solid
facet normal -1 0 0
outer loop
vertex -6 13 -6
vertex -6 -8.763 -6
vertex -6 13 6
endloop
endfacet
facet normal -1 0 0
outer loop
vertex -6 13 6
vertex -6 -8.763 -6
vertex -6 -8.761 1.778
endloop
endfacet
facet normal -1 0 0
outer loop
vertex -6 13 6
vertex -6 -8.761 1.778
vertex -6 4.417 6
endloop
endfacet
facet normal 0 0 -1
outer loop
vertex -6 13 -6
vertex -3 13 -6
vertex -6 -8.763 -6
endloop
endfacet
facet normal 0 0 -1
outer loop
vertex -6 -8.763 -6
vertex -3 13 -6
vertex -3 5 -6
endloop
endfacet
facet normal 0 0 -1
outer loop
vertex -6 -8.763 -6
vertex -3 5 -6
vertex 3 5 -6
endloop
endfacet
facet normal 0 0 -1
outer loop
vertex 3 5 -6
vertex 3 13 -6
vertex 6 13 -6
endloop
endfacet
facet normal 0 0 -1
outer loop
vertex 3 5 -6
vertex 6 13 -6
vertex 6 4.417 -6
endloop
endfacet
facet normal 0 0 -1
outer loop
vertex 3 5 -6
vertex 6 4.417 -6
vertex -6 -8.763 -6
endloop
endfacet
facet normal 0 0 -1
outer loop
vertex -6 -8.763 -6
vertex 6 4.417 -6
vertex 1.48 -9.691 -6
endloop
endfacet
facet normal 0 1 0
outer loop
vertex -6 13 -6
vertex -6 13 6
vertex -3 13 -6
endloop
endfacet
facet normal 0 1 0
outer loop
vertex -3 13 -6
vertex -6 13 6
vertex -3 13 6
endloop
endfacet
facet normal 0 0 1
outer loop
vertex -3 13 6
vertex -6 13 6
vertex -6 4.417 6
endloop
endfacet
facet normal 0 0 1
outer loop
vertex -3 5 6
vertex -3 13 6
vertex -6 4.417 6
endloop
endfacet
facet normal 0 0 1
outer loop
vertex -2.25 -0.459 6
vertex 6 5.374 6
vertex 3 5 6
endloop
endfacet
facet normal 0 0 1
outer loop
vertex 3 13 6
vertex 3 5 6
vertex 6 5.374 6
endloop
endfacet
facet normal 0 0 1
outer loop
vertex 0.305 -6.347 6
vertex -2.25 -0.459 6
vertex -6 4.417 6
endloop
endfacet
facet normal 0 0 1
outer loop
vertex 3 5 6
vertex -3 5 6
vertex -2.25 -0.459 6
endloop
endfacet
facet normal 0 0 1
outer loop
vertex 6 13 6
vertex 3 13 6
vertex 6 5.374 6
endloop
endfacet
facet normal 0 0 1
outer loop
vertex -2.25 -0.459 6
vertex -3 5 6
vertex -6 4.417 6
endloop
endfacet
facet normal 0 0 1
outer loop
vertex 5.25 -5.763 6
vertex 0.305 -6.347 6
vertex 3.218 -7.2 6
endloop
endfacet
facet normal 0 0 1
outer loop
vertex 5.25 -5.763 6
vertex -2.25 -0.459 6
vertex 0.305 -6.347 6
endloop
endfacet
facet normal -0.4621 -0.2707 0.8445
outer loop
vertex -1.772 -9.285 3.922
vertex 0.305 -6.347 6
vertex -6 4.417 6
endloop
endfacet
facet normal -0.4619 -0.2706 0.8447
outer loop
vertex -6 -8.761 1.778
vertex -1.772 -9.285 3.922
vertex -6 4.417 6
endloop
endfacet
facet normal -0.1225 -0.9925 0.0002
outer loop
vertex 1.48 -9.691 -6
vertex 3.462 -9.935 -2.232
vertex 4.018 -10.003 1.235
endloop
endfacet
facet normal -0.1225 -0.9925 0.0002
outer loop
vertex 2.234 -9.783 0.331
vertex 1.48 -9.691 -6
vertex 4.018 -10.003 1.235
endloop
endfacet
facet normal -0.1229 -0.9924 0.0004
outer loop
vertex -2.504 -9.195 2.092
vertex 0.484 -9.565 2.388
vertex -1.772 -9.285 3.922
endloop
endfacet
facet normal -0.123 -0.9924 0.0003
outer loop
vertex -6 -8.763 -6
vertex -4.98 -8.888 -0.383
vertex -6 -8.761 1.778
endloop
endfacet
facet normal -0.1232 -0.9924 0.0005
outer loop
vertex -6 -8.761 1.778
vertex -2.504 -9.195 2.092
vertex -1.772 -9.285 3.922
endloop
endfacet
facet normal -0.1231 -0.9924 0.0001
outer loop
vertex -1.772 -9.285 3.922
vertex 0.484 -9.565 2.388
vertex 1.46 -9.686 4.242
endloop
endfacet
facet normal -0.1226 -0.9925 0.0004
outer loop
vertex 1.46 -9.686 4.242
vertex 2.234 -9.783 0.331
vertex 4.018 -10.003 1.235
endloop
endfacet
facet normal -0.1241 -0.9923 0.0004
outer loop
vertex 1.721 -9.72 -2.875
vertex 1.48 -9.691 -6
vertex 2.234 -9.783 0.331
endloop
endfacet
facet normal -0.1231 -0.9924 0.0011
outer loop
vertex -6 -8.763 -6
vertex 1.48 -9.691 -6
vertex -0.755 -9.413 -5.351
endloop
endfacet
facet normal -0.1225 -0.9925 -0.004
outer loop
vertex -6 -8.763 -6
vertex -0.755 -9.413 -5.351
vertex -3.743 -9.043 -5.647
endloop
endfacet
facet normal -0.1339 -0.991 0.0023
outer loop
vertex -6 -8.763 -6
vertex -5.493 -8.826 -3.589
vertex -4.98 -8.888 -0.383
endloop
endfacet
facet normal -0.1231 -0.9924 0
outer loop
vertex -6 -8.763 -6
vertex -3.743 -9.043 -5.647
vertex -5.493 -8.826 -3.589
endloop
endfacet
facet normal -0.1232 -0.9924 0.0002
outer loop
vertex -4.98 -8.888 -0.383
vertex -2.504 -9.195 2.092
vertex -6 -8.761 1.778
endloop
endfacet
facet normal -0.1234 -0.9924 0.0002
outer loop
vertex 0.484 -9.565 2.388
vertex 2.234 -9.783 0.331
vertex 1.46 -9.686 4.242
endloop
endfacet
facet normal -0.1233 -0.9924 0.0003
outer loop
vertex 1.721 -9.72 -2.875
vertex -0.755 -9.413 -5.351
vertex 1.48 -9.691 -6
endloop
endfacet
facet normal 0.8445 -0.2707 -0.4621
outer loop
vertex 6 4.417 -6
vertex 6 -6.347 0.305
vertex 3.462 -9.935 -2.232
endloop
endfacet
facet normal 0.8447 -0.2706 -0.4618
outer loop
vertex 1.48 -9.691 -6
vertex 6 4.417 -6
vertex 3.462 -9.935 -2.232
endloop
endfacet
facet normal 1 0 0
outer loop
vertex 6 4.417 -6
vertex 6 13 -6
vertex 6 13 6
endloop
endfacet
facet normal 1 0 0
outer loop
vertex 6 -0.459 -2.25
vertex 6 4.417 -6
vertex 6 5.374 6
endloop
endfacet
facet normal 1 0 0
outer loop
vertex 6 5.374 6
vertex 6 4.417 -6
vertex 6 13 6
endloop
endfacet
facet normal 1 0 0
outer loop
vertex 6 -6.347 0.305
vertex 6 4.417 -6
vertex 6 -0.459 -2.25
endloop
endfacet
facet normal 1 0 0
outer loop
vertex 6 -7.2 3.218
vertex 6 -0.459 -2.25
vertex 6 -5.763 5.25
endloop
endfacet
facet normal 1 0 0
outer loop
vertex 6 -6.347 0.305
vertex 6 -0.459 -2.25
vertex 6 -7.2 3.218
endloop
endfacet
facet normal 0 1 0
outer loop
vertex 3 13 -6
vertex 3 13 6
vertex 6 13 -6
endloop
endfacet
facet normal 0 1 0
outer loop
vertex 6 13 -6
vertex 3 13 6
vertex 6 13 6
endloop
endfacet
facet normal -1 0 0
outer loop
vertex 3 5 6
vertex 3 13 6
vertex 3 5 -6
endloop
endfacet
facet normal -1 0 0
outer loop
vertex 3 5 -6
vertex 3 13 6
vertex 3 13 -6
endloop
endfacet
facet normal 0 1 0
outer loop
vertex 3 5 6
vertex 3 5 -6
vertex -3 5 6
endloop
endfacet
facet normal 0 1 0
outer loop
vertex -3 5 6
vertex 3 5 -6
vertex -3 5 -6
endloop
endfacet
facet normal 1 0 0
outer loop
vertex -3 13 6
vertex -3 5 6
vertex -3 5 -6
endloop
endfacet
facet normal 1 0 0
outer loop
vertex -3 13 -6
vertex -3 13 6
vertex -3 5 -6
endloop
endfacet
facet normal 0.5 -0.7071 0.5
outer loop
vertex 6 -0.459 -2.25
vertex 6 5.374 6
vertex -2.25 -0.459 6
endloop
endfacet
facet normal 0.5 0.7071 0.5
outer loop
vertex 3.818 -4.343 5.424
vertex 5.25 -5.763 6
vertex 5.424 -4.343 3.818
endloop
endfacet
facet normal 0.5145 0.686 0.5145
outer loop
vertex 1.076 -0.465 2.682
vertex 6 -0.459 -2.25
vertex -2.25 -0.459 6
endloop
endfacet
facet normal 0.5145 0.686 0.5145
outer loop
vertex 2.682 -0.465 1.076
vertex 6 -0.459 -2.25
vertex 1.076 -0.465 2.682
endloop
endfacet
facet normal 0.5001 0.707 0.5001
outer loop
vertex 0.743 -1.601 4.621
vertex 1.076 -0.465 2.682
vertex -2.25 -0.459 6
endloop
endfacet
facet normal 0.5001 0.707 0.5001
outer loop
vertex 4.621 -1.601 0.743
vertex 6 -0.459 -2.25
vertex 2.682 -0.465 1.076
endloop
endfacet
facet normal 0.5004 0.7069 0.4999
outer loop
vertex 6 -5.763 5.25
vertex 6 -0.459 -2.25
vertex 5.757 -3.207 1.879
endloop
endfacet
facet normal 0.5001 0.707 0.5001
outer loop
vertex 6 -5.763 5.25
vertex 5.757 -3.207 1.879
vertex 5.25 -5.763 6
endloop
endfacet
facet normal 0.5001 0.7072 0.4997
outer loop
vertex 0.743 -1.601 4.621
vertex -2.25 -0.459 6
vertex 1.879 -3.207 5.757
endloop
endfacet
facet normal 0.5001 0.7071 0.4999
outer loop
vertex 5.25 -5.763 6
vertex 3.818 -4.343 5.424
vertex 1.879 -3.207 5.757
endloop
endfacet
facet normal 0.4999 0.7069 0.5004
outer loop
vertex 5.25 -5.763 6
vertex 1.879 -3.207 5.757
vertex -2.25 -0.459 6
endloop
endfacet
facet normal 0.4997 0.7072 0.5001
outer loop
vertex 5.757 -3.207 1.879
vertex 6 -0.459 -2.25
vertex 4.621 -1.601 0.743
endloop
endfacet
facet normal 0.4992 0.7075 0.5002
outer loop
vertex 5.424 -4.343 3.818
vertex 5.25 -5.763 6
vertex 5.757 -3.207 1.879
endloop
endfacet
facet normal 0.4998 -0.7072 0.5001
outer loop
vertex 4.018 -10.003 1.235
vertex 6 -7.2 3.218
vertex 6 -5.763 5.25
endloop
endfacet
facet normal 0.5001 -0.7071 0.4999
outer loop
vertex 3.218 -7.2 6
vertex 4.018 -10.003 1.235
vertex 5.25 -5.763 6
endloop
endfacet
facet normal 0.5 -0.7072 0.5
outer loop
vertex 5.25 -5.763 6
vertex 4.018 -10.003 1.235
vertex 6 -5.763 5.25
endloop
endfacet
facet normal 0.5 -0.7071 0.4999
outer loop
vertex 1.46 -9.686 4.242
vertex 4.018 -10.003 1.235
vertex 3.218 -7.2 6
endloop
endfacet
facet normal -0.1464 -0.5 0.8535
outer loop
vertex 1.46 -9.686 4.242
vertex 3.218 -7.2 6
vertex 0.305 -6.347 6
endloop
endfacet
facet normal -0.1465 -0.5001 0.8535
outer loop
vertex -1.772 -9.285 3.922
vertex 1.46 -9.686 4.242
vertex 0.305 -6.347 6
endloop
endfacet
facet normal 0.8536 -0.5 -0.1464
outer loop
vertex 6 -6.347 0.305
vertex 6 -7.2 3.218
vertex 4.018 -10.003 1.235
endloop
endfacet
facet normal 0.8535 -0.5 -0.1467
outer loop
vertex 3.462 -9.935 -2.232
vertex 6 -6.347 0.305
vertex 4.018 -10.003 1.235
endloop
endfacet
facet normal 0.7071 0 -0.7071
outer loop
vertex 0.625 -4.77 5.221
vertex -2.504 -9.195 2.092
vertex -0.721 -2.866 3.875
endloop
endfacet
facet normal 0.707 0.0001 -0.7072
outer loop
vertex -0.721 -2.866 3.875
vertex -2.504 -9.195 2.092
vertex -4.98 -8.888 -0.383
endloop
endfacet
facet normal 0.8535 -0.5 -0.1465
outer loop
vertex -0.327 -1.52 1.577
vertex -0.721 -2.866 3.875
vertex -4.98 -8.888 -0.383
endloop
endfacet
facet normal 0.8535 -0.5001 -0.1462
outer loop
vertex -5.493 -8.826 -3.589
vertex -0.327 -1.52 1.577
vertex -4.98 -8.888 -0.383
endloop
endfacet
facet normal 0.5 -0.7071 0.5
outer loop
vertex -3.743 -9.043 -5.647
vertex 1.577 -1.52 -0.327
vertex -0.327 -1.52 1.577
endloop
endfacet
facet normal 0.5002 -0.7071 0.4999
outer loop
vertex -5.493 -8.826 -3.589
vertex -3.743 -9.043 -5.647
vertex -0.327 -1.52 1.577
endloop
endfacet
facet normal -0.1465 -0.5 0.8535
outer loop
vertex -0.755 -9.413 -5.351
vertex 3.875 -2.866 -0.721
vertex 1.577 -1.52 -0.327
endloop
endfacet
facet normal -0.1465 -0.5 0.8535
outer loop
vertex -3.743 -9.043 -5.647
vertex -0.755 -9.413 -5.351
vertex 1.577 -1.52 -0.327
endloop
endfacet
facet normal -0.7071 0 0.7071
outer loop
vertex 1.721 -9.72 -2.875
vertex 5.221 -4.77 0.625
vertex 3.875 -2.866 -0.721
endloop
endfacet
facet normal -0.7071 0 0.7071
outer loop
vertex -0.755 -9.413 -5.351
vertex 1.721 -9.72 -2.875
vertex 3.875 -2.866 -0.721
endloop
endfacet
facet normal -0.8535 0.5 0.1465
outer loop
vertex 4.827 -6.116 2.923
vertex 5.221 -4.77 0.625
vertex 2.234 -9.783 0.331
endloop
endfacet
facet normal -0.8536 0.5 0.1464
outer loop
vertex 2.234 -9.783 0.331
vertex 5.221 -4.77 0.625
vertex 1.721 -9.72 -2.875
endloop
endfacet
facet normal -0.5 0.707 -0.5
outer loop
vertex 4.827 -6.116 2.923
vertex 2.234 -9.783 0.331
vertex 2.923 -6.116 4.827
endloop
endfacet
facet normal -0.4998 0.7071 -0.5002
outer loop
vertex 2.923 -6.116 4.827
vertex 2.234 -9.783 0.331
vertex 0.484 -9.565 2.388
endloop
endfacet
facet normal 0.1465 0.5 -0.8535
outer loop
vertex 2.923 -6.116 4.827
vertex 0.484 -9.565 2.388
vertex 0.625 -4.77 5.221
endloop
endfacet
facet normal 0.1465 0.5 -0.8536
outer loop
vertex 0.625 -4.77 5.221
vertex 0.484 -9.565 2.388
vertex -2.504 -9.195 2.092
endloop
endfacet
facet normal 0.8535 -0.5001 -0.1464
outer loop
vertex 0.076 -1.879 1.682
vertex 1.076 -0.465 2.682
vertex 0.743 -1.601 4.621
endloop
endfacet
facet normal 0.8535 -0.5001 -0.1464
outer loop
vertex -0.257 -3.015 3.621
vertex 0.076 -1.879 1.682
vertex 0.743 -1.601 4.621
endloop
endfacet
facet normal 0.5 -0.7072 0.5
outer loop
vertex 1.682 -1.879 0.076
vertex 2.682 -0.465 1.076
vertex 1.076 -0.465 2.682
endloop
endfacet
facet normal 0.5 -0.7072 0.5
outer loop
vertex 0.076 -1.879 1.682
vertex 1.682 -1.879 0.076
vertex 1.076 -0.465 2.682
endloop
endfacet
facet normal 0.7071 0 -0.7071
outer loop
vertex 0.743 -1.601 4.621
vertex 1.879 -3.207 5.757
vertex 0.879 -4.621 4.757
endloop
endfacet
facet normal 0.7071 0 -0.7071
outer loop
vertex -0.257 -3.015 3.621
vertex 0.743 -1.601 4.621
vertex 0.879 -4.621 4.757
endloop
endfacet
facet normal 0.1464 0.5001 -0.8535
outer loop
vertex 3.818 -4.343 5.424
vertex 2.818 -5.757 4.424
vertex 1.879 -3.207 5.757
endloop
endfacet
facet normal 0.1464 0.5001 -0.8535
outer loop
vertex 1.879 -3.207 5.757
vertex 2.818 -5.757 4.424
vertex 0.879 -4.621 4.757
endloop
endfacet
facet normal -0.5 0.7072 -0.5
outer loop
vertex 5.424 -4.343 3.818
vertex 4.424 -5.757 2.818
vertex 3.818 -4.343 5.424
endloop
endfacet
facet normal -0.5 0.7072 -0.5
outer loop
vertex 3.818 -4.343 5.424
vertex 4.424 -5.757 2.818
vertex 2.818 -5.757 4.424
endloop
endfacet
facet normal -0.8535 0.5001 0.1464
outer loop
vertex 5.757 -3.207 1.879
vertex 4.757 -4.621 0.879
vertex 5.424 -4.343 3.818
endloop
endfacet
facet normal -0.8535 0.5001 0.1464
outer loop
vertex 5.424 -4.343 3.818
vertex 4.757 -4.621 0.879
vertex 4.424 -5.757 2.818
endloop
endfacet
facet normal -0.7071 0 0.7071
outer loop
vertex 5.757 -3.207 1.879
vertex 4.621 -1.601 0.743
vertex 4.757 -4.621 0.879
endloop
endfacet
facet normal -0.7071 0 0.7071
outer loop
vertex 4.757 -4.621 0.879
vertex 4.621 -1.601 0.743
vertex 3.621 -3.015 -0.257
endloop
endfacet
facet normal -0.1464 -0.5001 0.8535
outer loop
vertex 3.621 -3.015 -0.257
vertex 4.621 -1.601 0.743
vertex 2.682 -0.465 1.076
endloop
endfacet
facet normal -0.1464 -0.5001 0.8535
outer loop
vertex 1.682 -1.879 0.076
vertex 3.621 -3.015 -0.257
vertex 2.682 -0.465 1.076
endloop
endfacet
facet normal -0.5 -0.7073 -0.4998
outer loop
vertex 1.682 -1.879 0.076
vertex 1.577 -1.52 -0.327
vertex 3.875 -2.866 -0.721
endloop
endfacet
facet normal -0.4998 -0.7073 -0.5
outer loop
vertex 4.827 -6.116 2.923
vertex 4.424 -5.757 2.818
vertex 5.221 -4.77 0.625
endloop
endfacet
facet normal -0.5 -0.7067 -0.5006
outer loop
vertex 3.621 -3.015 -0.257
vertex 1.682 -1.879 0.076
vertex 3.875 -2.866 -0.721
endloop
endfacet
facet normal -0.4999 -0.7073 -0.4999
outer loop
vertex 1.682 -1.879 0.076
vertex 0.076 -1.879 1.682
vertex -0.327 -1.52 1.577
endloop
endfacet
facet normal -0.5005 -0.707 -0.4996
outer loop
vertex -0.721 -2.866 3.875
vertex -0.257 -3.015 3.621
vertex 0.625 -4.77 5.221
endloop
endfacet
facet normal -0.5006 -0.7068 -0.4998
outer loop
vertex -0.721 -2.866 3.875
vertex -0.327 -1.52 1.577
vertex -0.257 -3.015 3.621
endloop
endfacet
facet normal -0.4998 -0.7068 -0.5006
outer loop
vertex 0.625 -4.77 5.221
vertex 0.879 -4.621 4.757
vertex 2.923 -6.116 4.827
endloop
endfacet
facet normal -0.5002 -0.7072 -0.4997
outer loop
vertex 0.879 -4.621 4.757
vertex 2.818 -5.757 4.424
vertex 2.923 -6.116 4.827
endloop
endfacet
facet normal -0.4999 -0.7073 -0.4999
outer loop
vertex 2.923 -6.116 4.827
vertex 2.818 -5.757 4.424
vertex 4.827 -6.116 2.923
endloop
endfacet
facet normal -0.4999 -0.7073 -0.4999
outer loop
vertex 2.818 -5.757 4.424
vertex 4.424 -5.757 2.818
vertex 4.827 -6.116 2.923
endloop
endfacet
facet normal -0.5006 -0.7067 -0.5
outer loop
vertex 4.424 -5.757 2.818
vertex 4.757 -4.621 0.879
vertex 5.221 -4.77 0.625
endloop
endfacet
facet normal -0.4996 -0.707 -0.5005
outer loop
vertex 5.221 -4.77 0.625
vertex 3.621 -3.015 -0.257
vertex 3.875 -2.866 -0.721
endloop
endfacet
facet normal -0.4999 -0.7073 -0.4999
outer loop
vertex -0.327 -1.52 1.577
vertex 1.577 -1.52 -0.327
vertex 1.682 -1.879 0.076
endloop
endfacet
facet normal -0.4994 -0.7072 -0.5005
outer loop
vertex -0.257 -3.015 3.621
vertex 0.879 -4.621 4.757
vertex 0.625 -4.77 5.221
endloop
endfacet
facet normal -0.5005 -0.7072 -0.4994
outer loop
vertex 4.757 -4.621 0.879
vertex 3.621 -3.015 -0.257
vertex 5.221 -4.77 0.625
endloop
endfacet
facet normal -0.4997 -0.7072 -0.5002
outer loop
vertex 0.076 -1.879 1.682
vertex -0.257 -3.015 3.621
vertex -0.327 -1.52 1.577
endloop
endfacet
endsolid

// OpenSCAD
da6 = 1 / cos(180 / 6) / 2;
da8 = 1 / cos(180 / 8) / 2;

guide_diam = 6.5;
guide_length = 17;
holder_height = 26;
holder_clamp_depth = 8;

module spool_filament_holder(){
  difference() {
    translate([0,0,0]) cube([12,12,holder_height],center=true);

    translate([0,0,7]) {
      rotate([0,-45,45]) rotate([0,0,0]) {

        // main guide hole
        rotate([0,0,22.5]) {
          translate([0,0,4]) cylinder(r=guide_diam*da8,h=guide_length,$fn=8,center=true);

          // guide hole stop
          translate([0,0,0]) cylinder(r=guide_diam*da8-0.55,h=guide_length*3,$fn=8,center=true);
        }

        // square off hole ends
        translate([0,0,guide_length/2]) rotate([-5,40,0]) cube([guide_diam*4,guide_diam*4,8],center=true);
        translate([2,0,-guide_length/2-3]) cube([guide_diam+3,guide_diam*3,10],center=true);

        // rounded top
        for (r=[-45-22.5,-45,0,45,45+22.5]) {
          rotate([0,0,r]) translate([guide_diam/2+5,0,0]) cube([7,guide_length*2,guide_length],center=true);
        }
      }
    }



    translate([0,0,-holder_height/2]) cube([6,24,holder_clamp_depth*2],center=true);
  }
}

//spool_filament_holder();
rotate([90,0,0]) spool_filament_holder();
